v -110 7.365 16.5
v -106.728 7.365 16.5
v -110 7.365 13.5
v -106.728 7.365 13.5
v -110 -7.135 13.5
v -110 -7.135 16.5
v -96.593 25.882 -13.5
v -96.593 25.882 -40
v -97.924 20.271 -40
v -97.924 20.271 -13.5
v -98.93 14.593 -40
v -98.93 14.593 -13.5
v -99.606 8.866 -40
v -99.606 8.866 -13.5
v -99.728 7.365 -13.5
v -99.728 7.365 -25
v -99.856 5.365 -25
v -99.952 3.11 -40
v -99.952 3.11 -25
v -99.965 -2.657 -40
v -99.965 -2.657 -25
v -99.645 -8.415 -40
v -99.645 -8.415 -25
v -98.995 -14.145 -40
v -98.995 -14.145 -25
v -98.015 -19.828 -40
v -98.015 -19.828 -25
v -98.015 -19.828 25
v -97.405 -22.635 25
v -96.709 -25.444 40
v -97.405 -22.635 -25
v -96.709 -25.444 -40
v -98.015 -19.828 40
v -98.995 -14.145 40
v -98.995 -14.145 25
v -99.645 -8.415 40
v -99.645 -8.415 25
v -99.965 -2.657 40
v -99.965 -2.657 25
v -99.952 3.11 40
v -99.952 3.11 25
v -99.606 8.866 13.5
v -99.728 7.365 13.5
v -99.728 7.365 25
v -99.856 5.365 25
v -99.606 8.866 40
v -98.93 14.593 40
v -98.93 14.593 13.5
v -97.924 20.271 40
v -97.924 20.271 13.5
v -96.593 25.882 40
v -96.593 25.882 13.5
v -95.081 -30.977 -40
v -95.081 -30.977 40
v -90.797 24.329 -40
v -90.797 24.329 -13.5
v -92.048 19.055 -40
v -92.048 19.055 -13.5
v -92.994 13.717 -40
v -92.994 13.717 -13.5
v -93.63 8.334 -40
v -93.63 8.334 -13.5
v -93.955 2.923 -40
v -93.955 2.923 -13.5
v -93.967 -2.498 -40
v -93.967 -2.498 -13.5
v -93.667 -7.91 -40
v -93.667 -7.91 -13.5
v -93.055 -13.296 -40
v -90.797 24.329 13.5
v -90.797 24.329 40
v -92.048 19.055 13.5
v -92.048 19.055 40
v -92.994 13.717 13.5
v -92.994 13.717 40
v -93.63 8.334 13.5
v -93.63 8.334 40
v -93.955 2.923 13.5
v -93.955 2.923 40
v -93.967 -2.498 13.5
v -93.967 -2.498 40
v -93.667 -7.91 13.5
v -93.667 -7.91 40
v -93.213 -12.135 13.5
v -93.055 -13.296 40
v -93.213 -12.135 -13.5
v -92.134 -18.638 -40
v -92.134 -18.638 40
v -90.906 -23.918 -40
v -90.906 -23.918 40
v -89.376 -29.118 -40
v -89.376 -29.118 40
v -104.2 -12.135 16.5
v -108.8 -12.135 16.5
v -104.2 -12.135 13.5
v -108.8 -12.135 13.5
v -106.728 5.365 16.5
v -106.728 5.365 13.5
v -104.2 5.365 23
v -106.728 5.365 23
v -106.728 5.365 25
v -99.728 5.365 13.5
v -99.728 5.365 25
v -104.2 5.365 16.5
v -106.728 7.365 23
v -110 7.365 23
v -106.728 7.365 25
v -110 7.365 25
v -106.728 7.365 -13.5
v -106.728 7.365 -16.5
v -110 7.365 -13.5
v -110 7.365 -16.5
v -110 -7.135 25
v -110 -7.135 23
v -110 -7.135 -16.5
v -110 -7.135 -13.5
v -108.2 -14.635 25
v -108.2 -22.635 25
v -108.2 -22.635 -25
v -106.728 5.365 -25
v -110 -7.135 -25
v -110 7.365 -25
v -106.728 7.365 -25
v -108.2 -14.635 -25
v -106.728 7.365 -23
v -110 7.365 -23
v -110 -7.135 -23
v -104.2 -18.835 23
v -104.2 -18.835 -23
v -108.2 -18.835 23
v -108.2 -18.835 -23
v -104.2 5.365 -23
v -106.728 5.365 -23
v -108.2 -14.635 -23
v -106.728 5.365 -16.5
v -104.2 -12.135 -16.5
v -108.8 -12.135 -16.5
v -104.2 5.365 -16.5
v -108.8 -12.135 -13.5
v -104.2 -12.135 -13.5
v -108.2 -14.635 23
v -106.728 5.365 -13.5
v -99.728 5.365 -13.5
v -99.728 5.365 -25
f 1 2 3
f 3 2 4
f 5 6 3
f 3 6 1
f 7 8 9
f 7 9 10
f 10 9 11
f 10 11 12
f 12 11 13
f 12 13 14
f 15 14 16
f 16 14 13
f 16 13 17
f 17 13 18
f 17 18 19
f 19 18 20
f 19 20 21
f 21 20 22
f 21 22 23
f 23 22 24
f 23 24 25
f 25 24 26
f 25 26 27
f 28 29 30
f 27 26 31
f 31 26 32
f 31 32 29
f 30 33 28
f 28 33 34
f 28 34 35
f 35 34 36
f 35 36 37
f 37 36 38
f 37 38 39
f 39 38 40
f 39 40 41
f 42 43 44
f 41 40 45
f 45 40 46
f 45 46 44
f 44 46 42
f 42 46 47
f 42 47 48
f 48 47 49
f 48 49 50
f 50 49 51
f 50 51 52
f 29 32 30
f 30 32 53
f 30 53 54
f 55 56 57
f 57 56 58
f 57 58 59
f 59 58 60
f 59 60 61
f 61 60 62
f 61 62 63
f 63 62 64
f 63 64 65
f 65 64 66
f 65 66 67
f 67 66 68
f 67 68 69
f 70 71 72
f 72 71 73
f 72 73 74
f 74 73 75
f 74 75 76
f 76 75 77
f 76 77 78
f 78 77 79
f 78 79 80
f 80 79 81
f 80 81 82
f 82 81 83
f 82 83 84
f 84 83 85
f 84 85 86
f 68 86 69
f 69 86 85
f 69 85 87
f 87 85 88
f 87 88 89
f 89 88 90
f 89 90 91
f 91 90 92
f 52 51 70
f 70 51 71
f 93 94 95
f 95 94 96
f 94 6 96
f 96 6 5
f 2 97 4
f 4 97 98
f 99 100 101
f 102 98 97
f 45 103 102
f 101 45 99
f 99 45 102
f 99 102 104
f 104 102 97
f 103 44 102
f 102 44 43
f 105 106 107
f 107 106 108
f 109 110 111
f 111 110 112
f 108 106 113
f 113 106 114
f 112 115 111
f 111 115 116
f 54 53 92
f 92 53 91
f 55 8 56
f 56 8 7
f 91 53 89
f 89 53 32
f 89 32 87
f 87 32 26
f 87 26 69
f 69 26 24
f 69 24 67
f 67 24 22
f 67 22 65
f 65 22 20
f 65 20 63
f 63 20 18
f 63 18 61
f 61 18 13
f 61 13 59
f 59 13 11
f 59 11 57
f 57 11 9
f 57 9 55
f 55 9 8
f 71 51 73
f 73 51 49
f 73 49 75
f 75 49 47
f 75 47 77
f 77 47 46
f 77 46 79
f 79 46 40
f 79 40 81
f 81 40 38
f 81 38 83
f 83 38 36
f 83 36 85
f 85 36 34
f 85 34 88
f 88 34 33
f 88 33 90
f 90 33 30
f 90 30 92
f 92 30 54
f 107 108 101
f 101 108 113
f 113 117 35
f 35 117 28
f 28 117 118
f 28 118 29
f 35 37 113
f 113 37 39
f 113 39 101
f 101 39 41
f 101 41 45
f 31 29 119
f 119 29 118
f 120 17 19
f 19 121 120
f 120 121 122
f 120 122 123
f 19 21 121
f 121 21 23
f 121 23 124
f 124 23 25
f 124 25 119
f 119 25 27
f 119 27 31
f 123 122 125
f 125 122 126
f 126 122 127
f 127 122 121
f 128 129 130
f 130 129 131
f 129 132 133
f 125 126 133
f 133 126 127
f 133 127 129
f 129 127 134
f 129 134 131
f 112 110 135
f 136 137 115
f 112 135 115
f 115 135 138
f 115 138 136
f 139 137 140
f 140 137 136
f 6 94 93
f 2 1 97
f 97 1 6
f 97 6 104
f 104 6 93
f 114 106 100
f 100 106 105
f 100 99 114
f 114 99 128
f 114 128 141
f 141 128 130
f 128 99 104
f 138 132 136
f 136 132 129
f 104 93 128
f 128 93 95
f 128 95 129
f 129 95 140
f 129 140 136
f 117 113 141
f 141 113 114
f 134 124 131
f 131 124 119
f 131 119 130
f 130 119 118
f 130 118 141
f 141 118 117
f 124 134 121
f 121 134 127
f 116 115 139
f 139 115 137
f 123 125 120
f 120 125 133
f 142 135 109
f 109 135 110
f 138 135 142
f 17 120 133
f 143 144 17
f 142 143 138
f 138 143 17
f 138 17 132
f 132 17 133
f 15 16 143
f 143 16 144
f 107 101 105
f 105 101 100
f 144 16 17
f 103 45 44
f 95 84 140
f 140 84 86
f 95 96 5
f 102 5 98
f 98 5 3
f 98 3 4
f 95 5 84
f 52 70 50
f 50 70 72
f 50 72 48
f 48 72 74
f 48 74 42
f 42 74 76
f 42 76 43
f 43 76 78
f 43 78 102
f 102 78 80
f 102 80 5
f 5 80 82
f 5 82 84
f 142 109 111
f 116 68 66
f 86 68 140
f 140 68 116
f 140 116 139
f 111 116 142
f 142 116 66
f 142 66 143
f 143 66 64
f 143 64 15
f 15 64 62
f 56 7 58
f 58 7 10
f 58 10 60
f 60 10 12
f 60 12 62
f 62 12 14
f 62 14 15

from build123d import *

# Parameters (mm, degrees)
BOSS_EXTRUDE2_DEPTH      = 40
BOSS_EXTRUDE2_DEPTH_BACK = 40
SKETCH5_W                = 50
SKETCH5_H                = 30
BOSS_EXTRUDE1_DEPTH      = 10
BOSS_EXTRUDE1_DEPTH_BACK = 4
SKETCH6_W                = 33
SKETCH6_H                = 6.7
SKETCH6_W_2              = 6.5
SKETCH6_H_2              = 26.2
CUT_EXTRUDE1_DEPTH       = 5.8
CUT_EXTRUDE2_DEPTH       = 50
SKETCH8_W                = 7
SKETCH8_H                = 2
CUT_EXTRUDE3_DEPTH       = 50
SKETCH9_W                = 27
SKETCH9_H                = 14.5
SKETCH9_H_2              = 5
SKETCH9_H_3              = 24.261575761
CUT_EXTRUDE4_DEPTH       = 21.623624402


with BuildPart() as part:
    # Sketch3 → Boss-Extrude2 (new body, two sides)
    with BuildSketch(Plane.XY) as boss_extrude2_sk:
        with BuildLine():
            ThreePointArc((-90.797027671, 24.32899024), (-93.966810921, -2.497688001), (-89.376375598, -29.11809549))
            Line((-89.376375598, -29.11809549), (-95.081250636, -30.97669733))
            ThreePointArc((-95.081250636, -30.97669733), (-99.964692469, -2.657114895), (-96.592582629, 25.88190451))
            Line((-96.592582629, 25.88190451), (-90.797027671, 24.32899024))
        make_face()
    extrude(amount=BOSS_EXTRUDE2_DEPTH)
    extrude(boss_extrude2_sk.sketch, amount=-BOSS_EXTRUDE2_DEPTH_BACK)

    # Sketch5 → Boss-Extrude1 (add, two sides)
    with BuildSketch(Plane.ZY.offset(100)) as boss_extrude1_sk:
        with Locations((0, -7.635182233)):
            Rectangle(SKETCH5_W, SKETCH5_H)
    extrude(amount=BOSS_EXTRUDE1_DEPTH)
    extrude(boss_extrude1_sk.sketch, amount=-BOSS_EXTRUDE1_DEPTH_BACK)

    # Sketch6 → Cut-Extrude1 (cut)
    with BuildSketch(Plane.ZY.offset(110)):
        with Locations((0, -15.485182233)):
            Rectangle(SKETCH6_W, SKETCH6_H)
        with Locations((-19.75, -5.735182233)):
            Rectangle(SKETCH6_W_2, SKETCH6_H_2)
        with Locations((19.75, -5.735182233)):
            Rectangle(SKETCH6_W_2, SKETCH6_H_2)
    extrude(amount=-CUT_EXTRUDE1_DEPTH, mode=Mode.SUBTRACT)

    # Sketch7 → Cut-Extrude2 (cut)
    with BuildSketch(Plane(origin=(0, 0, -25), x_dir=(-1, 0, 0), z_dir=(0, 0, -1))):
        Polygon((108.2, -22.635182233), (108.2, -14.635182233), (110, -7.135182233), (110, -22.635182233), align=None)
    extrude(amount=-CUT_EXTRUDE2_DEPTH, mode=Mode.SUBTRACT)

    # Sketch8 → Cut-Extrude3 (cut)
    with BuildSketch(Plane(origin=(0, 0, -25), x_dir=(-1, 0, 0), z_dir=(0, 0, -1))):
        with Locations((103.228428541, 6.364817767)):
            Rectangle(SKETCH8_W, SKETCH8_H)
    extrude(amount=-CUT_EXTRUDE3_DEPTH, mode=Mode.SUBTRACT)

    # Sketch9 → Cut-Extrude4 (cut, through all)
    with BuildSketch(Plane.ZY.offset(110)):
        with Locations((0, 0.114817767)):
            Rectangle(SKETCH9_W, SKETCH9_H)
        with Locations((0, -9.635182233)):
            Rectangle(SKETCH9_W, SKETCH9_H_2)
        with Locations((0, 19.495605647)):
            Rectangle(SKETCH9_W, SKETCH9_H_3)
    extrude(amount=-CUT_EXTRUDE4_DEPTH, mode=Mode.SUBTRACT)


solid = part.part
